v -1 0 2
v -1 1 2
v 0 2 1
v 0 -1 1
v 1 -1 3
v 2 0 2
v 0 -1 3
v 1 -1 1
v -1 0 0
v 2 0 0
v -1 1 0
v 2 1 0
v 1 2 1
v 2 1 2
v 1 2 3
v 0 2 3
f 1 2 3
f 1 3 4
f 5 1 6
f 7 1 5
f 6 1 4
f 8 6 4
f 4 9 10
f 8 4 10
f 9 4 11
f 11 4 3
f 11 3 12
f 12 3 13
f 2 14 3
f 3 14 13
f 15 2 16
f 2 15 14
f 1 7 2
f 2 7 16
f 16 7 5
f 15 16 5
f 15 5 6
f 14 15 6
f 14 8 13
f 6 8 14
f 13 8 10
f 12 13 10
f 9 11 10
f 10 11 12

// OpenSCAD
module skew_cube(a,b) {
	multmatrix(m = [
		[1, 0, a, 0],
		[0, 1, b, 0],
		[0, 0, 1, 0]
	]) cube(size=1.00001);
}

module span_cube(x1,y1,x2,y2,z) {
	translate(v=[x1,y1,z])
	skew_cube(x2-x1,y2-y1);
}


union() {
span_cube(-1,0,0,-1,0);
span_cube(-1,0,0,0,0);
span_cube(-1,0,0,1,0);
span_cube(0,0,0,-1,0);
span_cube(0,0,0,0,0);
span_cube(0,0,0,1,0);
span_cube(1,0,0,-1,0);
span_cube(1,0,0,0,0);
span_cube(1,0,0,1,0);
span_cube(0,-1,-1,0,1);
span_cube(0,-1,0,0,1);
span_cube(0,-1,1,0,1);
span_cube(0,0,-1,0,1);
span_cube(0,0,0,0,1);
span_cube(0,0,1,0,1);
span_cube(0,1,-1,0,1);
span_cube(0,1,0,0,1);
span_cube(0,1,1,0,1);
span_cube(-1,0,0,-1,2);
span_cube(-1,0,0,0,2);
span_cube(-1,0,0,1,2);
span_cube(0,0,0,-1,2);
span_cube(0,0,0,0,2);
span_cube(0,0,0,1,2);
span_cube(1,0,0,-1,2);
span_cube(1,0,0,0,2);
span_cube(1,0,0,1,2);
}
